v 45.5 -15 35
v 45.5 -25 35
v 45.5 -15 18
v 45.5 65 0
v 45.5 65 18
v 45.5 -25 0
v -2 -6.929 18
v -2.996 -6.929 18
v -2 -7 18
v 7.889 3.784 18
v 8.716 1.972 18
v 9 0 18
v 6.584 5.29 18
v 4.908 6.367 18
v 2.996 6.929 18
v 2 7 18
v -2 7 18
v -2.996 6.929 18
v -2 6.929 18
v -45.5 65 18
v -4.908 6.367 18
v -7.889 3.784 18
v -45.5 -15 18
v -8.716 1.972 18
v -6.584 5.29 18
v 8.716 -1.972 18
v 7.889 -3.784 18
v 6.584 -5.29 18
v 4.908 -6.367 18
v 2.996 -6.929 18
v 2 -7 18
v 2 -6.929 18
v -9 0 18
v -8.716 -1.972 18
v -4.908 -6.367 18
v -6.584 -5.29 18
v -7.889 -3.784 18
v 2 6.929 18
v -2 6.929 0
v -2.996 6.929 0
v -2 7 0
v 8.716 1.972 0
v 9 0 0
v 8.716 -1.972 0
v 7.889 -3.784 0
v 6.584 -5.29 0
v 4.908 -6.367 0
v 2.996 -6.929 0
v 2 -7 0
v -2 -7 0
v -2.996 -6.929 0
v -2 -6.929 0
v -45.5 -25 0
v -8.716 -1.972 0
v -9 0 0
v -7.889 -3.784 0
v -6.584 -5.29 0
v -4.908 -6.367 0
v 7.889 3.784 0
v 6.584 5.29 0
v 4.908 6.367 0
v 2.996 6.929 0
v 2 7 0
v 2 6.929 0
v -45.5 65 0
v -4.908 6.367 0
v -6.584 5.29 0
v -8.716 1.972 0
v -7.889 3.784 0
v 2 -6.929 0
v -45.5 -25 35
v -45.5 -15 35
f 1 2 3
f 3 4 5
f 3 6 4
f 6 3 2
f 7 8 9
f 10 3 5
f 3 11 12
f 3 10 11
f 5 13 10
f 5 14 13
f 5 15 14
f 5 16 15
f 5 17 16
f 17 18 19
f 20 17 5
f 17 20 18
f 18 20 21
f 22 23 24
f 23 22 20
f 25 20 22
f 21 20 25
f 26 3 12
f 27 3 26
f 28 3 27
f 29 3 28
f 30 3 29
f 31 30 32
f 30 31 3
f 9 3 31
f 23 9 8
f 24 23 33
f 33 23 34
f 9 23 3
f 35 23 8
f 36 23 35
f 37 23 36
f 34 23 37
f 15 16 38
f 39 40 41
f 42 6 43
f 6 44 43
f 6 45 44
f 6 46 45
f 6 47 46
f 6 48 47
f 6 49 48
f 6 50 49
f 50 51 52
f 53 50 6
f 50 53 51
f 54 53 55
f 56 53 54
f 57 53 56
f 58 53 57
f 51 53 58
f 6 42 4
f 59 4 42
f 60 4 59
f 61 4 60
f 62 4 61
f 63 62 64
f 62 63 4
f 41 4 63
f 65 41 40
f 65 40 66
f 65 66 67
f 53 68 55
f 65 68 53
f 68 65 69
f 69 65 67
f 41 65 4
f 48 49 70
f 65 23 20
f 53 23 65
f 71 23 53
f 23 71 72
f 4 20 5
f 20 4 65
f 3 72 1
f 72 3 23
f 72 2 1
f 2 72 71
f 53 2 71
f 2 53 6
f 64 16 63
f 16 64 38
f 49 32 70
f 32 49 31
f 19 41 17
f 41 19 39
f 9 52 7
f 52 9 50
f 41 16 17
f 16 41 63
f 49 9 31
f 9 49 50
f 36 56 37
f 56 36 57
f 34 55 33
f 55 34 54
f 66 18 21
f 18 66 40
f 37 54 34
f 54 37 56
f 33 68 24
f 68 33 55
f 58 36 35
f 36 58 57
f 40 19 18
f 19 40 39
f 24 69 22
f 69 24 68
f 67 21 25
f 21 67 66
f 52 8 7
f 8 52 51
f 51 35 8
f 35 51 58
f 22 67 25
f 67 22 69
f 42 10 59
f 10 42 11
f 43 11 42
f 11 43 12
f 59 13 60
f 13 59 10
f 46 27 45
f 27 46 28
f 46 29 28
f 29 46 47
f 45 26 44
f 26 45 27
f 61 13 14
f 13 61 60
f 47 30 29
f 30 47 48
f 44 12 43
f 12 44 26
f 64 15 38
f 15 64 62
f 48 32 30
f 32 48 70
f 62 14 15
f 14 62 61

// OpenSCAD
// Milling Template 
// Finger Grip

oakTthickness = 21;
routerHight = 20;
fingerDepth = 14;
height      = 18;
routerWidth = 12;
with        = routerWidth+2;
lenght      = 18;

distanceFromEdge  = 15;
tamplateWith      = 31+30*2;
tamplateLenght    = 80;
bracketsThickness = 10;
bracketsHight = height
                +oakTthickness
                -4;
extraRemoval  = 1;


difference() {
union(){
translate([
    -tamplateWith/2,
    -distanceFromEdge, 
    0]) 
    cube(size = [
    tamplateWith,
    tamplateLenght,
    height]);
    
translate([
    -tamplateWith/2,
    -distanceFromEdge
    -bracketsThickness,
    0]) 
    cube(size = [
    tamplateWith,
    bracketsThickness,
    bracketsHight]);
}

union(){  // removal finger
translate([
    -(lenght/2
    -with/2),
    -with/2,
    -extraRemoval]) 
    cube(size = [
    lenght-with,
    with,
    height+extraRemoval*2]);
    
translate([
    -(lenght/2
    -with/2),
    0,
    -extraRemoval]) 
    cylinder(
    h = height+extraRemoval*2, 
    r = with/2);

translate([
    +(lenght/2
    -with/2),
    0,
    -extraRemoval]) 
    cylinder(
    h = height+extraRemoval*2, 
    r = with/2);
}
}
 
